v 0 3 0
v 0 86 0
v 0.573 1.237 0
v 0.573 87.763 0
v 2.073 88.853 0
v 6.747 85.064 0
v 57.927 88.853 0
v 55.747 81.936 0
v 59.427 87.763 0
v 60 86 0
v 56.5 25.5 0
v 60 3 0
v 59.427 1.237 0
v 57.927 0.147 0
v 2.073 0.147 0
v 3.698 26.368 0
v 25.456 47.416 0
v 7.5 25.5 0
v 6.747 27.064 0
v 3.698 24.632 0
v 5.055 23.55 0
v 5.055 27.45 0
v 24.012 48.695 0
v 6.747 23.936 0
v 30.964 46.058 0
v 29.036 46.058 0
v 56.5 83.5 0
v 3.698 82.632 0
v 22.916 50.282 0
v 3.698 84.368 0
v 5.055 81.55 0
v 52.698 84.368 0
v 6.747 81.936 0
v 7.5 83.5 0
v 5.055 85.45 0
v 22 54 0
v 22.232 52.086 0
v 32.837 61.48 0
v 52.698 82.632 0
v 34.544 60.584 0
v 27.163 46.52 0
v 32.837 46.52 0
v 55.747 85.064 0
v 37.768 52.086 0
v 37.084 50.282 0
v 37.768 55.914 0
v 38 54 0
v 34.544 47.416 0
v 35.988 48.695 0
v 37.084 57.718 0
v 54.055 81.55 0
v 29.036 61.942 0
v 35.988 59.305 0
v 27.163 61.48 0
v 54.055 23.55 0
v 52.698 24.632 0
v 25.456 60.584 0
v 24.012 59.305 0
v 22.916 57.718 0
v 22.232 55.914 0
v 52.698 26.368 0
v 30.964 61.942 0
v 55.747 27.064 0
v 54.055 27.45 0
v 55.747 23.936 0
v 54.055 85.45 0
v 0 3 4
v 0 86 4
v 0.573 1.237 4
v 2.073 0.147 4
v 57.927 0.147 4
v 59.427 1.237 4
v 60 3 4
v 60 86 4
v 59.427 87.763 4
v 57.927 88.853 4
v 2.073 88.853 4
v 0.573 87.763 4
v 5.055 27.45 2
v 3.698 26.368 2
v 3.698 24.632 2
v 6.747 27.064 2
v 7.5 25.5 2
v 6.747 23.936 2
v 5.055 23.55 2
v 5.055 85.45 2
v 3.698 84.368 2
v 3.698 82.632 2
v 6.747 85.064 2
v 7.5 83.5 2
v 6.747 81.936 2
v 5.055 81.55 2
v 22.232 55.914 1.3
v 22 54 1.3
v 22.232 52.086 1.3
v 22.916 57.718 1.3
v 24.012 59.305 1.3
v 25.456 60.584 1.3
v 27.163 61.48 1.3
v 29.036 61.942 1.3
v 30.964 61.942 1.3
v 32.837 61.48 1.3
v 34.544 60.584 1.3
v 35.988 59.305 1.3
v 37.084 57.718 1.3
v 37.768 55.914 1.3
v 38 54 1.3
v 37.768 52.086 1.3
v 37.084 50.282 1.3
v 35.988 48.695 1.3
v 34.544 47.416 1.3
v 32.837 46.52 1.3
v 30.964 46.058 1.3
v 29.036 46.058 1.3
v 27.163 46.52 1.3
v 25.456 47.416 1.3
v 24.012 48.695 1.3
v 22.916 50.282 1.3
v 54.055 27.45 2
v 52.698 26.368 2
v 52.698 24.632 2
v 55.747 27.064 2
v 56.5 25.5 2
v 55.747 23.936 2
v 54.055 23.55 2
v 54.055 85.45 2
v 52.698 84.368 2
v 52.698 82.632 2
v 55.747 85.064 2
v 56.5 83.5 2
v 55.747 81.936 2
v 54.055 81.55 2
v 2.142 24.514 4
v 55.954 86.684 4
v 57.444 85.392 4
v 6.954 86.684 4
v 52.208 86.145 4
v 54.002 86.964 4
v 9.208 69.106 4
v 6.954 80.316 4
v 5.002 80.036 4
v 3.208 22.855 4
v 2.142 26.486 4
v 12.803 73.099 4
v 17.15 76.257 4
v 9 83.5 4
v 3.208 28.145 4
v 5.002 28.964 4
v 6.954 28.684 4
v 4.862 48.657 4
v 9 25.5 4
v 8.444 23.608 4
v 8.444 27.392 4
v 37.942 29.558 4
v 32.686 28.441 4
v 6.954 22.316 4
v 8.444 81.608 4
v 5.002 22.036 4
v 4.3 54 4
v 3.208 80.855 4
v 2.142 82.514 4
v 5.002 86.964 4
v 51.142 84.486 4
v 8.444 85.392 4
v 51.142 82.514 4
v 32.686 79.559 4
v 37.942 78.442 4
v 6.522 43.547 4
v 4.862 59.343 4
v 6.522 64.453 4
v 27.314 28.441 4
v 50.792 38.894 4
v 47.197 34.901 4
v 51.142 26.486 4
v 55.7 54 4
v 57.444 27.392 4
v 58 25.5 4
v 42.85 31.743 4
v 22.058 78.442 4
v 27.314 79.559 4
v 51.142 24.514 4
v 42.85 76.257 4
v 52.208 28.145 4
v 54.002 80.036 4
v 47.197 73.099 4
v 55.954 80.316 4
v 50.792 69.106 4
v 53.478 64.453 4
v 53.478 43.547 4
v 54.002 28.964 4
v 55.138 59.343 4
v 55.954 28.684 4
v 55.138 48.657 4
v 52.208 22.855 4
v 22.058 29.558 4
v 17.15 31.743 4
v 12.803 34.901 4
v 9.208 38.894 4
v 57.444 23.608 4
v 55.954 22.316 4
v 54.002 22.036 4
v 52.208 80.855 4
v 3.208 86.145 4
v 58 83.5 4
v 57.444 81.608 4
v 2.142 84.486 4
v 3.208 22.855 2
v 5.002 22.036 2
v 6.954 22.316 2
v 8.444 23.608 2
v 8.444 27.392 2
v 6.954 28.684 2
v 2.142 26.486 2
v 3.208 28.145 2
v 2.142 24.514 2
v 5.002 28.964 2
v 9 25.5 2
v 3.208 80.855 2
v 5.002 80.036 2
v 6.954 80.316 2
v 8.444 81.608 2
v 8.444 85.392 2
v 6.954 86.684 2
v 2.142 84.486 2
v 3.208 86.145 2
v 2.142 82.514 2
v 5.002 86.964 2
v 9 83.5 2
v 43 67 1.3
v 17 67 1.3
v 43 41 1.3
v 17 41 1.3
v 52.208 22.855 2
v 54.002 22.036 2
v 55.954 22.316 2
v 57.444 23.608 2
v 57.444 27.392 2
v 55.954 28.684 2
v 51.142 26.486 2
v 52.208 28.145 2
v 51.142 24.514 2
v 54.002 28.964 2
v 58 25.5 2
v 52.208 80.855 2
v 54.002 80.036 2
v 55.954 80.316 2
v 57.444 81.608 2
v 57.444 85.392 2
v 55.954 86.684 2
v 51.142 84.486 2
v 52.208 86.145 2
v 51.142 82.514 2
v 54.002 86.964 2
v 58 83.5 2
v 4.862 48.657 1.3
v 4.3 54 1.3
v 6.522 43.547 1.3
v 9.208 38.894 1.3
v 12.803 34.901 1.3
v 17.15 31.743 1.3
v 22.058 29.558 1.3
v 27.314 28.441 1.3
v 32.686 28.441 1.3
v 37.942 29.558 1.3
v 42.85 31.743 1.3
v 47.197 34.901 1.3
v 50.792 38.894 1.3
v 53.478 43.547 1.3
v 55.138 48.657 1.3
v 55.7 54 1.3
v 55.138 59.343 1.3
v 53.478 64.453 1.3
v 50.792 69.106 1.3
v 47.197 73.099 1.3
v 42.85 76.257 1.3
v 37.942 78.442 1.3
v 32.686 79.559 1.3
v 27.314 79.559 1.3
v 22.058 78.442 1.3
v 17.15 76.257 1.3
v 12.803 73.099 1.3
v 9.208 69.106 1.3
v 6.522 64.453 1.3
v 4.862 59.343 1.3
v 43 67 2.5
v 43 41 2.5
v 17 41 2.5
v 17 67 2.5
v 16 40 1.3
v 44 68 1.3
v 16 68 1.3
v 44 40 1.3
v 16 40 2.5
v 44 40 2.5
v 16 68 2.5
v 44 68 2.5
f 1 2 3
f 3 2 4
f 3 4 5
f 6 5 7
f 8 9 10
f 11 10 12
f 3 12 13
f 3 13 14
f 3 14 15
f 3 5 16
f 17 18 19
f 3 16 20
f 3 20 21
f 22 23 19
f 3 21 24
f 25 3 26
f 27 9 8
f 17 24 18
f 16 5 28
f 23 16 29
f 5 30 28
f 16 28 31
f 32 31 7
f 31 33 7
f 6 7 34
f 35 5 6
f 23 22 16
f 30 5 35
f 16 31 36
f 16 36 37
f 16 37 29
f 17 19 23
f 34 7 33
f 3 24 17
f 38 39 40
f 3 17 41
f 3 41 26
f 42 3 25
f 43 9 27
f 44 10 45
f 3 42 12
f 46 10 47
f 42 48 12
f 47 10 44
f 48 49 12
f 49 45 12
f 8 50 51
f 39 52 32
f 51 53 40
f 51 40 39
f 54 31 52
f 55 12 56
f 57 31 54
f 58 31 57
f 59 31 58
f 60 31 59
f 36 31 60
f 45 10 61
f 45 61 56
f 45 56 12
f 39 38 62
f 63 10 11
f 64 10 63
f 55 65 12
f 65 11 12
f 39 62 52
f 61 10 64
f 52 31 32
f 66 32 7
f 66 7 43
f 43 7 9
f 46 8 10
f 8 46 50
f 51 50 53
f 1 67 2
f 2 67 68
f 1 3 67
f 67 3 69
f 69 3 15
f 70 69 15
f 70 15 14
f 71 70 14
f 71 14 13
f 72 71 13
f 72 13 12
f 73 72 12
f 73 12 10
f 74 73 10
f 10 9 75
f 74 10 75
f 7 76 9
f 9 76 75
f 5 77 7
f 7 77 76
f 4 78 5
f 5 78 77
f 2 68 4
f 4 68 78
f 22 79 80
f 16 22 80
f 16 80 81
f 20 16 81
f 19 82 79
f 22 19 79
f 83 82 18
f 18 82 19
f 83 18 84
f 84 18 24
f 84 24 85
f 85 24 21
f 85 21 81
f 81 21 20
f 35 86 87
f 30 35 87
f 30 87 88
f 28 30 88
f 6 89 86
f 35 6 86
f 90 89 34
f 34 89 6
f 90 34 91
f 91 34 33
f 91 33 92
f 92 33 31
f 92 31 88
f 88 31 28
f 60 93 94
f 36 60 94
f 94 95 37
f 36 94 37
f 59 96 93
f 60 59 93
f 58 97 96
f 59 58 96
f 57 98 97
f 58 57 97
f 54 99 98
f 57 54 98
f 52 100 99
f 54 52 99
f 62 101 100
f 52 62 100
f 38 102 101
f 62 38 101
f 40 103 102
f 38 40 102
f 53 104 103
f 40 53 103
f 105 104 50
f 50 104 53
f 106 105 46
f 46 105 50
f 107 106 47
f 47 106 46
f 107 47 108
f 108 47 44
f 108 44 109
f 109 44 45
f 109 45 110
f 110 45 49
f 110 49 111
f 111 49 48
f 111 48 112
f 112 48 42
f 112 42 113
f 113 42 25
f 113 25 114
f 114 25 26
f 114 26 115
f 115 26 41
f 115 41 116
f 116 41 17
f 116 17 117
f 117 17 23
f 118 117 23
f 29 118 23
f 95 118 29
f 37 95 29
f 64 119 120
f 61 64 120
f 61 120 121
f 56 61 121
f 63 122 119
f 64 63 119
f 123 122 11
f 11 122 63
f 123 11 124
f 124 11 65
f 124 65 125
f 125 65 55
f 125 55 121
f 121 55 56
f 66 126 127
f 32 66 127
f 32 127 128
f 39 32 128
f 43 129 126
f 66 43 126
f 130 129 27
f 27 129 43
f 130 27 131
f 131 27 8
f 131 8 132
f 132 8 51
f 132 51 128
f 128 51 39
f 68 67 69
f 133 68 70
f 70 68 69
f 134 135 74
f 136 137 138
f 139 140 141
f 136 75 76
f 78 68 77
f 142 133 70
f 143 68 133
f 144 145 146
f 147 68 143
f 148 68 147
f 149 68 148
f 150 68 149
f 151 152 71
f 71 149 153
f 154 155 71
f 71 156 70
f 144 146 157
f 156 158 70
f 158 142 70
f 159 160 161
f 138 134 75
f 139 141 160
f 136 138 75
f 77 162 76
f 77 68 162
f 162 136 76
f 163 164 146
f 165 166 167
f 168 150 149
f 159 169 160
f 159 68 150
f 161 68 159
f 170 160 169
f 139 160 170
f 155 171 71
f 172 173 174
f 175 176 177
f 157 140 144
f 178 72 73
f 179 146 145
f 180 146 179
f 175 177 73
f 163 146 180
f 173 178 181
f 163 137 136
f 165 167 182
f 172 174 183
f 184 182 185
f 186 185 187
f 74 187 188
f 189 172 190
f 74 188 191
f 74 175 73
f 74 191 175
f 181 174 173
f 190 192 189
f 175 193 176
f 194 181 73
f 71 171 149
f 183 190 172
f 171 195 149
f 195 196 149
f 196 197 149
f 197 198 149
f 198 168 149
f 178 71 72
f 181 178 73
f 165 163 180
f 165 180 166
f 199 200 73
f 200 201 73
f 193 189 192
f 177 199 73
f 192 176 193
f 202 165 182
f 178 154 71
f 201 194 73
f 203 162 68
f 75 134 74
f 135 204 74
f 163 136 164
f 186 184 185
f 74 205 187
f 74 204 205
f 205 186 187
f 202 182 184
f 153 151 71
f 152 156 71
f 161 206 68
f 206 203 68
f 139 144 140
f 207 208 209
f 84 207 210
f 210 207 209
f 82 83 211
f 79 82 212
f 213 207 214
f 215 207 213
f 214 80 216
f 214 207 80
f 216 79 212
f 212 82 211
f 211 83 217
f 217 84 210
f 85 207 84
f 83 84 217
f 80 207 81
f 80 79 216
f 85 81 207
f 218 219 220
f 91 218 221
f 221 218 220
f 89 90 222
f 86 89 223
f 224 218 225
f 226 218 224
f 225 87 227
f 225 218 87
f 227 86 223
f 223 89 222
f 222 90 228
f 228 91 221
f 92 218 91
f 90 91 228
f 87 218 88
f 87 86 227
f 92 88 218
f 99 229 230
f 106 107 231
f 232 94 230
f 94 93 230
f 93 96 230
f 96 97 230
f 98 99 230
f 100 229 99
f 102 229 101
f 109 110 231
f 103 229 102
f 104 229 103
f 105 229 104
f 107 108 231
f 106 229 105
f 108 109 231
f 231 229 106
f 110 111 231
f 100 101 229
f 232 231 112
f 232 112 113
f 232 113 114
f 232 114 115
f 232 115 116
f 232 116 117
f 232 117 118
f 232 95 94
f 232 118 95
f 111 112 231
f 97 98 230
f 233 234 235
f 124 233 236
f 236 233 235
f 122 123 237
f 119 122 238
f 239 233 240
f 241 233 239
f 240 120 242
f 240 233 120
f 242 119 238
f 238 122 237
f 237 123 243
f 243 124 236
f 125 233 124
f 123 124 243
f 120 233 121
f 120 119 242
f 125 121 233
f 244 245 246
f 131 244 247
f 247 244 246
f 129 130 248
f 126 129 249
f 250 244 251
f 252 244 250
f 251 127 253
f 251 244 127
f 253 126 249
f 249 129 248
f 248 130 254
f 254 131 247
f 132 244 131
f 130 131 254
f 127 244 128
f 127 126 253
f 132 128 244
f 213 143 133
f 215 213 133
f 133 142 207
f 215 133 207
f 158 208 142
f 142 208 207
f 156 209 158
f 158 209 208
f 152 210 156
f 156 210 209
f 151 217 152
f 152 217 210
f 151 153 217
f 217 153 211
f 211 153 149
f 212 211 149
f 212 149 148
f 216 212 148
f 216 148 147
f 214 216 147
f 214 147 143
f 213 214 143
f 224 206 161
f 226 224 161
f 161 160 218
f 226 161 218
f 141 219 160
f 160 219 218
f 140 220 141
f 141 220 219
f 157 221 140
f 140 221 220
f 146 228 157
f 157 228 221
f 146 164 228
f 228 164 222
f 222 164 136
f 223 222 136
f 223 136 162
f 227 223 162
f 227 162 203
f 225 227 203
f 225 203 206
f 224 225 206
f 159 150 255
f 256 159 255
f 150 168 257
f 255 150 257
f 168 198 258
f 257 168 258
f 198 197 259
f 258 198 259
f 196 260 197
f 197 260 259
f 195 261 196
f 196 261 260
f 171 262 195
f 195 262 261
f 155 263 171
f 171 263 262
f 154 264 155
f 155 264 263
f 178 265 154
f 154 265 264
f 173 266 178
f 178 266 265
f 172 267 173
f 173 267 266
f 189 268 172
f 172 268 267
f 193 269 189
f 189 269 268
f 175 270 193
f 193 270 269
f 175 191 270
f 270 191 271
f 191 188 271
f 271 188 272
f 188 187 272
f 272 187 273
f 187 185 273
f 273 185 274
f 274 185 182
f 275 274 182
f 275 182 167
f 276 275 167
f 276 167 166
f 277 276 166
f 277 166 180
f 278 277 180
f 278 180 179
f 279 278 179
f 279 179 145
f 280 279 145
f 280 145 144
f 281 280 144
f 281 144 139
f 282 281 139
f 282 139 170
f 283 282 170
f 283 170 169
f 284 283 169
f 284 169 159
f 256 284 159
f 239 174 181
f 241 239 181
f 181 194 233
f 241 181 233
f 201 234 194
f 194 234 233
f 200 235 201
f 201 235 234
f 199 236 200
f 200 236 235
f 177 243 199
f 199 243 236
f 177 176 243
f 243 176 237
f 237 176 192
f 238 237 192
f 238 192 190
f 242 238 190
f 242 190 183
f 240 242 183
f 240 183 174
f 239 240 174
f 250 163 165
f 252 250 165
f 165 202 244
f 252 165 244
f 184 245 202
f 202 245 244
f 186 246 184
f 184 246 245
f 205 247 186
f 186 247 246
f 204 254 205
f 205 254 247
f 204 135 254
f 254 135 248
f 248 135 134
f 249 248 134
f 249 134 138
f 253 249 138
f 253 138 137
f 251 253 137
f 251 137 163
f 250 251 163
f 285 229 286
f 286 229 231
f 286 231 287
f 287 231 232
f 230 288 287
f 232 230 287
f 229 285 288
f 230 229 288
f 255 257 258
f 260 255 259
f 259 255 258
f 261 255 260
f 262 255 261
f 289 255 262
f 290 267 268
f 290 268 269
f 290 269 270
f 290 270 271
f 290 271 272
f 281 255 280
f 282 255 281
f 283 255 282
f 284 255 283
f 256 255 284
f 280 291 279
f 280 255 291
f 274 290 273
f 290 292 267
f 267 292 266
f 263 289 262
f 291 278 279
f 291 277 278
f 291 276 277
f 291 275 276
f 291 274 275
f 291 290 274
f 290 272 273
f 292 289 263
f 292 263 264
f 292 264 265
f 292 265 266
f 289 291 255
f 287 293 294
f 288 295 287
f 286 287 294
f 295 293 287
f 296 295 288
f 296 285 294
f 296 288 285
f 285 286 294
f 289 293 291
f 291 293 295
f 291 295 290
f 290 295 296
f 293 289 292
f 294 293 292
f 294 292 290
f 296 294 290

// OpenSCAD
pared = 4;
pared2 = 2*pared;
medPared = pared/2;

ringRad = 51.4;//51.4
esqRad  = 3;

raspX = 57;//58
raspY = 86;//85
raspZ = 15.5;//15.5
raspD1 = 3.45;
raspDP = 22;
raspD2 = raspDP+pared2;//Altura lados
raspAlza = 2.6;

vidrioW = 26;
vidrioD = 0.5;

//translate([-2,-2,27])
tapa();

module tapa()
{

translate([16,40,0])
vidrio();

//translate([30,54.5,0])
//makeRing((ringRad/2),pared-1,pared+1);

difference()
{

hull()
{
	translate([medPared,medPared,0])
	cube([raspX,raspY,pared]);
	esquinas();
}

translate([30,54,-0.1])
cylinder(r=8,10);

translate([30,54,pared-2.7])
cylinder(r=ringRad/2,10);


translate([5.5,25.5,-2])
cylinder(r=2,10);

translate([54.5,25.5,-2])
cylinder(r=2,10);

translate([5.5,83.5,-2])
cylinder(r=2,10);

translate([54.5,83.5,-2])
cylinder(r=2,10);


translate([5.5,25.5,medPared])
cylinder(r=3.5,10);

translate([54.5,25.5,medPared])
cylinder(r=3.5,10);

translate([5.5,83.5,medPared])
cylinder(r=3.5,10);

translate([54.5,83.5,medPared])
cylinder(r=3.5,10);


}

}

module esquinas()
{
	translate([esqRad,esqRad,0])
	cylinder(r=3,pared);
	
	translate([raspX,esqRad,0])
	cylinder(r=3,pared);

	translate([esqRad,raspY,0])
	cylinder(r=3,pared);
	
	translate([raspX,raspY,0])
	cylinder(r=3,pared);

}

module vidrio()
{	
	difference()
	{
	cube([vidrioW+medPared,vidrioW+medPared,medPared+vidrioD]);
	
	translate([1,1,-0.1])
	cube([vidrioW,vidrioW,medPared+vidrioD+0.2]);
	
	}
}


module makeRing(hueco,pared,height)
{
	difference()
	{
		cylinder(r=hueco+pared,height);
		
		translate([0,0,-0.1])
		cylinder(r=hueco,height+0.2);
	}
}
